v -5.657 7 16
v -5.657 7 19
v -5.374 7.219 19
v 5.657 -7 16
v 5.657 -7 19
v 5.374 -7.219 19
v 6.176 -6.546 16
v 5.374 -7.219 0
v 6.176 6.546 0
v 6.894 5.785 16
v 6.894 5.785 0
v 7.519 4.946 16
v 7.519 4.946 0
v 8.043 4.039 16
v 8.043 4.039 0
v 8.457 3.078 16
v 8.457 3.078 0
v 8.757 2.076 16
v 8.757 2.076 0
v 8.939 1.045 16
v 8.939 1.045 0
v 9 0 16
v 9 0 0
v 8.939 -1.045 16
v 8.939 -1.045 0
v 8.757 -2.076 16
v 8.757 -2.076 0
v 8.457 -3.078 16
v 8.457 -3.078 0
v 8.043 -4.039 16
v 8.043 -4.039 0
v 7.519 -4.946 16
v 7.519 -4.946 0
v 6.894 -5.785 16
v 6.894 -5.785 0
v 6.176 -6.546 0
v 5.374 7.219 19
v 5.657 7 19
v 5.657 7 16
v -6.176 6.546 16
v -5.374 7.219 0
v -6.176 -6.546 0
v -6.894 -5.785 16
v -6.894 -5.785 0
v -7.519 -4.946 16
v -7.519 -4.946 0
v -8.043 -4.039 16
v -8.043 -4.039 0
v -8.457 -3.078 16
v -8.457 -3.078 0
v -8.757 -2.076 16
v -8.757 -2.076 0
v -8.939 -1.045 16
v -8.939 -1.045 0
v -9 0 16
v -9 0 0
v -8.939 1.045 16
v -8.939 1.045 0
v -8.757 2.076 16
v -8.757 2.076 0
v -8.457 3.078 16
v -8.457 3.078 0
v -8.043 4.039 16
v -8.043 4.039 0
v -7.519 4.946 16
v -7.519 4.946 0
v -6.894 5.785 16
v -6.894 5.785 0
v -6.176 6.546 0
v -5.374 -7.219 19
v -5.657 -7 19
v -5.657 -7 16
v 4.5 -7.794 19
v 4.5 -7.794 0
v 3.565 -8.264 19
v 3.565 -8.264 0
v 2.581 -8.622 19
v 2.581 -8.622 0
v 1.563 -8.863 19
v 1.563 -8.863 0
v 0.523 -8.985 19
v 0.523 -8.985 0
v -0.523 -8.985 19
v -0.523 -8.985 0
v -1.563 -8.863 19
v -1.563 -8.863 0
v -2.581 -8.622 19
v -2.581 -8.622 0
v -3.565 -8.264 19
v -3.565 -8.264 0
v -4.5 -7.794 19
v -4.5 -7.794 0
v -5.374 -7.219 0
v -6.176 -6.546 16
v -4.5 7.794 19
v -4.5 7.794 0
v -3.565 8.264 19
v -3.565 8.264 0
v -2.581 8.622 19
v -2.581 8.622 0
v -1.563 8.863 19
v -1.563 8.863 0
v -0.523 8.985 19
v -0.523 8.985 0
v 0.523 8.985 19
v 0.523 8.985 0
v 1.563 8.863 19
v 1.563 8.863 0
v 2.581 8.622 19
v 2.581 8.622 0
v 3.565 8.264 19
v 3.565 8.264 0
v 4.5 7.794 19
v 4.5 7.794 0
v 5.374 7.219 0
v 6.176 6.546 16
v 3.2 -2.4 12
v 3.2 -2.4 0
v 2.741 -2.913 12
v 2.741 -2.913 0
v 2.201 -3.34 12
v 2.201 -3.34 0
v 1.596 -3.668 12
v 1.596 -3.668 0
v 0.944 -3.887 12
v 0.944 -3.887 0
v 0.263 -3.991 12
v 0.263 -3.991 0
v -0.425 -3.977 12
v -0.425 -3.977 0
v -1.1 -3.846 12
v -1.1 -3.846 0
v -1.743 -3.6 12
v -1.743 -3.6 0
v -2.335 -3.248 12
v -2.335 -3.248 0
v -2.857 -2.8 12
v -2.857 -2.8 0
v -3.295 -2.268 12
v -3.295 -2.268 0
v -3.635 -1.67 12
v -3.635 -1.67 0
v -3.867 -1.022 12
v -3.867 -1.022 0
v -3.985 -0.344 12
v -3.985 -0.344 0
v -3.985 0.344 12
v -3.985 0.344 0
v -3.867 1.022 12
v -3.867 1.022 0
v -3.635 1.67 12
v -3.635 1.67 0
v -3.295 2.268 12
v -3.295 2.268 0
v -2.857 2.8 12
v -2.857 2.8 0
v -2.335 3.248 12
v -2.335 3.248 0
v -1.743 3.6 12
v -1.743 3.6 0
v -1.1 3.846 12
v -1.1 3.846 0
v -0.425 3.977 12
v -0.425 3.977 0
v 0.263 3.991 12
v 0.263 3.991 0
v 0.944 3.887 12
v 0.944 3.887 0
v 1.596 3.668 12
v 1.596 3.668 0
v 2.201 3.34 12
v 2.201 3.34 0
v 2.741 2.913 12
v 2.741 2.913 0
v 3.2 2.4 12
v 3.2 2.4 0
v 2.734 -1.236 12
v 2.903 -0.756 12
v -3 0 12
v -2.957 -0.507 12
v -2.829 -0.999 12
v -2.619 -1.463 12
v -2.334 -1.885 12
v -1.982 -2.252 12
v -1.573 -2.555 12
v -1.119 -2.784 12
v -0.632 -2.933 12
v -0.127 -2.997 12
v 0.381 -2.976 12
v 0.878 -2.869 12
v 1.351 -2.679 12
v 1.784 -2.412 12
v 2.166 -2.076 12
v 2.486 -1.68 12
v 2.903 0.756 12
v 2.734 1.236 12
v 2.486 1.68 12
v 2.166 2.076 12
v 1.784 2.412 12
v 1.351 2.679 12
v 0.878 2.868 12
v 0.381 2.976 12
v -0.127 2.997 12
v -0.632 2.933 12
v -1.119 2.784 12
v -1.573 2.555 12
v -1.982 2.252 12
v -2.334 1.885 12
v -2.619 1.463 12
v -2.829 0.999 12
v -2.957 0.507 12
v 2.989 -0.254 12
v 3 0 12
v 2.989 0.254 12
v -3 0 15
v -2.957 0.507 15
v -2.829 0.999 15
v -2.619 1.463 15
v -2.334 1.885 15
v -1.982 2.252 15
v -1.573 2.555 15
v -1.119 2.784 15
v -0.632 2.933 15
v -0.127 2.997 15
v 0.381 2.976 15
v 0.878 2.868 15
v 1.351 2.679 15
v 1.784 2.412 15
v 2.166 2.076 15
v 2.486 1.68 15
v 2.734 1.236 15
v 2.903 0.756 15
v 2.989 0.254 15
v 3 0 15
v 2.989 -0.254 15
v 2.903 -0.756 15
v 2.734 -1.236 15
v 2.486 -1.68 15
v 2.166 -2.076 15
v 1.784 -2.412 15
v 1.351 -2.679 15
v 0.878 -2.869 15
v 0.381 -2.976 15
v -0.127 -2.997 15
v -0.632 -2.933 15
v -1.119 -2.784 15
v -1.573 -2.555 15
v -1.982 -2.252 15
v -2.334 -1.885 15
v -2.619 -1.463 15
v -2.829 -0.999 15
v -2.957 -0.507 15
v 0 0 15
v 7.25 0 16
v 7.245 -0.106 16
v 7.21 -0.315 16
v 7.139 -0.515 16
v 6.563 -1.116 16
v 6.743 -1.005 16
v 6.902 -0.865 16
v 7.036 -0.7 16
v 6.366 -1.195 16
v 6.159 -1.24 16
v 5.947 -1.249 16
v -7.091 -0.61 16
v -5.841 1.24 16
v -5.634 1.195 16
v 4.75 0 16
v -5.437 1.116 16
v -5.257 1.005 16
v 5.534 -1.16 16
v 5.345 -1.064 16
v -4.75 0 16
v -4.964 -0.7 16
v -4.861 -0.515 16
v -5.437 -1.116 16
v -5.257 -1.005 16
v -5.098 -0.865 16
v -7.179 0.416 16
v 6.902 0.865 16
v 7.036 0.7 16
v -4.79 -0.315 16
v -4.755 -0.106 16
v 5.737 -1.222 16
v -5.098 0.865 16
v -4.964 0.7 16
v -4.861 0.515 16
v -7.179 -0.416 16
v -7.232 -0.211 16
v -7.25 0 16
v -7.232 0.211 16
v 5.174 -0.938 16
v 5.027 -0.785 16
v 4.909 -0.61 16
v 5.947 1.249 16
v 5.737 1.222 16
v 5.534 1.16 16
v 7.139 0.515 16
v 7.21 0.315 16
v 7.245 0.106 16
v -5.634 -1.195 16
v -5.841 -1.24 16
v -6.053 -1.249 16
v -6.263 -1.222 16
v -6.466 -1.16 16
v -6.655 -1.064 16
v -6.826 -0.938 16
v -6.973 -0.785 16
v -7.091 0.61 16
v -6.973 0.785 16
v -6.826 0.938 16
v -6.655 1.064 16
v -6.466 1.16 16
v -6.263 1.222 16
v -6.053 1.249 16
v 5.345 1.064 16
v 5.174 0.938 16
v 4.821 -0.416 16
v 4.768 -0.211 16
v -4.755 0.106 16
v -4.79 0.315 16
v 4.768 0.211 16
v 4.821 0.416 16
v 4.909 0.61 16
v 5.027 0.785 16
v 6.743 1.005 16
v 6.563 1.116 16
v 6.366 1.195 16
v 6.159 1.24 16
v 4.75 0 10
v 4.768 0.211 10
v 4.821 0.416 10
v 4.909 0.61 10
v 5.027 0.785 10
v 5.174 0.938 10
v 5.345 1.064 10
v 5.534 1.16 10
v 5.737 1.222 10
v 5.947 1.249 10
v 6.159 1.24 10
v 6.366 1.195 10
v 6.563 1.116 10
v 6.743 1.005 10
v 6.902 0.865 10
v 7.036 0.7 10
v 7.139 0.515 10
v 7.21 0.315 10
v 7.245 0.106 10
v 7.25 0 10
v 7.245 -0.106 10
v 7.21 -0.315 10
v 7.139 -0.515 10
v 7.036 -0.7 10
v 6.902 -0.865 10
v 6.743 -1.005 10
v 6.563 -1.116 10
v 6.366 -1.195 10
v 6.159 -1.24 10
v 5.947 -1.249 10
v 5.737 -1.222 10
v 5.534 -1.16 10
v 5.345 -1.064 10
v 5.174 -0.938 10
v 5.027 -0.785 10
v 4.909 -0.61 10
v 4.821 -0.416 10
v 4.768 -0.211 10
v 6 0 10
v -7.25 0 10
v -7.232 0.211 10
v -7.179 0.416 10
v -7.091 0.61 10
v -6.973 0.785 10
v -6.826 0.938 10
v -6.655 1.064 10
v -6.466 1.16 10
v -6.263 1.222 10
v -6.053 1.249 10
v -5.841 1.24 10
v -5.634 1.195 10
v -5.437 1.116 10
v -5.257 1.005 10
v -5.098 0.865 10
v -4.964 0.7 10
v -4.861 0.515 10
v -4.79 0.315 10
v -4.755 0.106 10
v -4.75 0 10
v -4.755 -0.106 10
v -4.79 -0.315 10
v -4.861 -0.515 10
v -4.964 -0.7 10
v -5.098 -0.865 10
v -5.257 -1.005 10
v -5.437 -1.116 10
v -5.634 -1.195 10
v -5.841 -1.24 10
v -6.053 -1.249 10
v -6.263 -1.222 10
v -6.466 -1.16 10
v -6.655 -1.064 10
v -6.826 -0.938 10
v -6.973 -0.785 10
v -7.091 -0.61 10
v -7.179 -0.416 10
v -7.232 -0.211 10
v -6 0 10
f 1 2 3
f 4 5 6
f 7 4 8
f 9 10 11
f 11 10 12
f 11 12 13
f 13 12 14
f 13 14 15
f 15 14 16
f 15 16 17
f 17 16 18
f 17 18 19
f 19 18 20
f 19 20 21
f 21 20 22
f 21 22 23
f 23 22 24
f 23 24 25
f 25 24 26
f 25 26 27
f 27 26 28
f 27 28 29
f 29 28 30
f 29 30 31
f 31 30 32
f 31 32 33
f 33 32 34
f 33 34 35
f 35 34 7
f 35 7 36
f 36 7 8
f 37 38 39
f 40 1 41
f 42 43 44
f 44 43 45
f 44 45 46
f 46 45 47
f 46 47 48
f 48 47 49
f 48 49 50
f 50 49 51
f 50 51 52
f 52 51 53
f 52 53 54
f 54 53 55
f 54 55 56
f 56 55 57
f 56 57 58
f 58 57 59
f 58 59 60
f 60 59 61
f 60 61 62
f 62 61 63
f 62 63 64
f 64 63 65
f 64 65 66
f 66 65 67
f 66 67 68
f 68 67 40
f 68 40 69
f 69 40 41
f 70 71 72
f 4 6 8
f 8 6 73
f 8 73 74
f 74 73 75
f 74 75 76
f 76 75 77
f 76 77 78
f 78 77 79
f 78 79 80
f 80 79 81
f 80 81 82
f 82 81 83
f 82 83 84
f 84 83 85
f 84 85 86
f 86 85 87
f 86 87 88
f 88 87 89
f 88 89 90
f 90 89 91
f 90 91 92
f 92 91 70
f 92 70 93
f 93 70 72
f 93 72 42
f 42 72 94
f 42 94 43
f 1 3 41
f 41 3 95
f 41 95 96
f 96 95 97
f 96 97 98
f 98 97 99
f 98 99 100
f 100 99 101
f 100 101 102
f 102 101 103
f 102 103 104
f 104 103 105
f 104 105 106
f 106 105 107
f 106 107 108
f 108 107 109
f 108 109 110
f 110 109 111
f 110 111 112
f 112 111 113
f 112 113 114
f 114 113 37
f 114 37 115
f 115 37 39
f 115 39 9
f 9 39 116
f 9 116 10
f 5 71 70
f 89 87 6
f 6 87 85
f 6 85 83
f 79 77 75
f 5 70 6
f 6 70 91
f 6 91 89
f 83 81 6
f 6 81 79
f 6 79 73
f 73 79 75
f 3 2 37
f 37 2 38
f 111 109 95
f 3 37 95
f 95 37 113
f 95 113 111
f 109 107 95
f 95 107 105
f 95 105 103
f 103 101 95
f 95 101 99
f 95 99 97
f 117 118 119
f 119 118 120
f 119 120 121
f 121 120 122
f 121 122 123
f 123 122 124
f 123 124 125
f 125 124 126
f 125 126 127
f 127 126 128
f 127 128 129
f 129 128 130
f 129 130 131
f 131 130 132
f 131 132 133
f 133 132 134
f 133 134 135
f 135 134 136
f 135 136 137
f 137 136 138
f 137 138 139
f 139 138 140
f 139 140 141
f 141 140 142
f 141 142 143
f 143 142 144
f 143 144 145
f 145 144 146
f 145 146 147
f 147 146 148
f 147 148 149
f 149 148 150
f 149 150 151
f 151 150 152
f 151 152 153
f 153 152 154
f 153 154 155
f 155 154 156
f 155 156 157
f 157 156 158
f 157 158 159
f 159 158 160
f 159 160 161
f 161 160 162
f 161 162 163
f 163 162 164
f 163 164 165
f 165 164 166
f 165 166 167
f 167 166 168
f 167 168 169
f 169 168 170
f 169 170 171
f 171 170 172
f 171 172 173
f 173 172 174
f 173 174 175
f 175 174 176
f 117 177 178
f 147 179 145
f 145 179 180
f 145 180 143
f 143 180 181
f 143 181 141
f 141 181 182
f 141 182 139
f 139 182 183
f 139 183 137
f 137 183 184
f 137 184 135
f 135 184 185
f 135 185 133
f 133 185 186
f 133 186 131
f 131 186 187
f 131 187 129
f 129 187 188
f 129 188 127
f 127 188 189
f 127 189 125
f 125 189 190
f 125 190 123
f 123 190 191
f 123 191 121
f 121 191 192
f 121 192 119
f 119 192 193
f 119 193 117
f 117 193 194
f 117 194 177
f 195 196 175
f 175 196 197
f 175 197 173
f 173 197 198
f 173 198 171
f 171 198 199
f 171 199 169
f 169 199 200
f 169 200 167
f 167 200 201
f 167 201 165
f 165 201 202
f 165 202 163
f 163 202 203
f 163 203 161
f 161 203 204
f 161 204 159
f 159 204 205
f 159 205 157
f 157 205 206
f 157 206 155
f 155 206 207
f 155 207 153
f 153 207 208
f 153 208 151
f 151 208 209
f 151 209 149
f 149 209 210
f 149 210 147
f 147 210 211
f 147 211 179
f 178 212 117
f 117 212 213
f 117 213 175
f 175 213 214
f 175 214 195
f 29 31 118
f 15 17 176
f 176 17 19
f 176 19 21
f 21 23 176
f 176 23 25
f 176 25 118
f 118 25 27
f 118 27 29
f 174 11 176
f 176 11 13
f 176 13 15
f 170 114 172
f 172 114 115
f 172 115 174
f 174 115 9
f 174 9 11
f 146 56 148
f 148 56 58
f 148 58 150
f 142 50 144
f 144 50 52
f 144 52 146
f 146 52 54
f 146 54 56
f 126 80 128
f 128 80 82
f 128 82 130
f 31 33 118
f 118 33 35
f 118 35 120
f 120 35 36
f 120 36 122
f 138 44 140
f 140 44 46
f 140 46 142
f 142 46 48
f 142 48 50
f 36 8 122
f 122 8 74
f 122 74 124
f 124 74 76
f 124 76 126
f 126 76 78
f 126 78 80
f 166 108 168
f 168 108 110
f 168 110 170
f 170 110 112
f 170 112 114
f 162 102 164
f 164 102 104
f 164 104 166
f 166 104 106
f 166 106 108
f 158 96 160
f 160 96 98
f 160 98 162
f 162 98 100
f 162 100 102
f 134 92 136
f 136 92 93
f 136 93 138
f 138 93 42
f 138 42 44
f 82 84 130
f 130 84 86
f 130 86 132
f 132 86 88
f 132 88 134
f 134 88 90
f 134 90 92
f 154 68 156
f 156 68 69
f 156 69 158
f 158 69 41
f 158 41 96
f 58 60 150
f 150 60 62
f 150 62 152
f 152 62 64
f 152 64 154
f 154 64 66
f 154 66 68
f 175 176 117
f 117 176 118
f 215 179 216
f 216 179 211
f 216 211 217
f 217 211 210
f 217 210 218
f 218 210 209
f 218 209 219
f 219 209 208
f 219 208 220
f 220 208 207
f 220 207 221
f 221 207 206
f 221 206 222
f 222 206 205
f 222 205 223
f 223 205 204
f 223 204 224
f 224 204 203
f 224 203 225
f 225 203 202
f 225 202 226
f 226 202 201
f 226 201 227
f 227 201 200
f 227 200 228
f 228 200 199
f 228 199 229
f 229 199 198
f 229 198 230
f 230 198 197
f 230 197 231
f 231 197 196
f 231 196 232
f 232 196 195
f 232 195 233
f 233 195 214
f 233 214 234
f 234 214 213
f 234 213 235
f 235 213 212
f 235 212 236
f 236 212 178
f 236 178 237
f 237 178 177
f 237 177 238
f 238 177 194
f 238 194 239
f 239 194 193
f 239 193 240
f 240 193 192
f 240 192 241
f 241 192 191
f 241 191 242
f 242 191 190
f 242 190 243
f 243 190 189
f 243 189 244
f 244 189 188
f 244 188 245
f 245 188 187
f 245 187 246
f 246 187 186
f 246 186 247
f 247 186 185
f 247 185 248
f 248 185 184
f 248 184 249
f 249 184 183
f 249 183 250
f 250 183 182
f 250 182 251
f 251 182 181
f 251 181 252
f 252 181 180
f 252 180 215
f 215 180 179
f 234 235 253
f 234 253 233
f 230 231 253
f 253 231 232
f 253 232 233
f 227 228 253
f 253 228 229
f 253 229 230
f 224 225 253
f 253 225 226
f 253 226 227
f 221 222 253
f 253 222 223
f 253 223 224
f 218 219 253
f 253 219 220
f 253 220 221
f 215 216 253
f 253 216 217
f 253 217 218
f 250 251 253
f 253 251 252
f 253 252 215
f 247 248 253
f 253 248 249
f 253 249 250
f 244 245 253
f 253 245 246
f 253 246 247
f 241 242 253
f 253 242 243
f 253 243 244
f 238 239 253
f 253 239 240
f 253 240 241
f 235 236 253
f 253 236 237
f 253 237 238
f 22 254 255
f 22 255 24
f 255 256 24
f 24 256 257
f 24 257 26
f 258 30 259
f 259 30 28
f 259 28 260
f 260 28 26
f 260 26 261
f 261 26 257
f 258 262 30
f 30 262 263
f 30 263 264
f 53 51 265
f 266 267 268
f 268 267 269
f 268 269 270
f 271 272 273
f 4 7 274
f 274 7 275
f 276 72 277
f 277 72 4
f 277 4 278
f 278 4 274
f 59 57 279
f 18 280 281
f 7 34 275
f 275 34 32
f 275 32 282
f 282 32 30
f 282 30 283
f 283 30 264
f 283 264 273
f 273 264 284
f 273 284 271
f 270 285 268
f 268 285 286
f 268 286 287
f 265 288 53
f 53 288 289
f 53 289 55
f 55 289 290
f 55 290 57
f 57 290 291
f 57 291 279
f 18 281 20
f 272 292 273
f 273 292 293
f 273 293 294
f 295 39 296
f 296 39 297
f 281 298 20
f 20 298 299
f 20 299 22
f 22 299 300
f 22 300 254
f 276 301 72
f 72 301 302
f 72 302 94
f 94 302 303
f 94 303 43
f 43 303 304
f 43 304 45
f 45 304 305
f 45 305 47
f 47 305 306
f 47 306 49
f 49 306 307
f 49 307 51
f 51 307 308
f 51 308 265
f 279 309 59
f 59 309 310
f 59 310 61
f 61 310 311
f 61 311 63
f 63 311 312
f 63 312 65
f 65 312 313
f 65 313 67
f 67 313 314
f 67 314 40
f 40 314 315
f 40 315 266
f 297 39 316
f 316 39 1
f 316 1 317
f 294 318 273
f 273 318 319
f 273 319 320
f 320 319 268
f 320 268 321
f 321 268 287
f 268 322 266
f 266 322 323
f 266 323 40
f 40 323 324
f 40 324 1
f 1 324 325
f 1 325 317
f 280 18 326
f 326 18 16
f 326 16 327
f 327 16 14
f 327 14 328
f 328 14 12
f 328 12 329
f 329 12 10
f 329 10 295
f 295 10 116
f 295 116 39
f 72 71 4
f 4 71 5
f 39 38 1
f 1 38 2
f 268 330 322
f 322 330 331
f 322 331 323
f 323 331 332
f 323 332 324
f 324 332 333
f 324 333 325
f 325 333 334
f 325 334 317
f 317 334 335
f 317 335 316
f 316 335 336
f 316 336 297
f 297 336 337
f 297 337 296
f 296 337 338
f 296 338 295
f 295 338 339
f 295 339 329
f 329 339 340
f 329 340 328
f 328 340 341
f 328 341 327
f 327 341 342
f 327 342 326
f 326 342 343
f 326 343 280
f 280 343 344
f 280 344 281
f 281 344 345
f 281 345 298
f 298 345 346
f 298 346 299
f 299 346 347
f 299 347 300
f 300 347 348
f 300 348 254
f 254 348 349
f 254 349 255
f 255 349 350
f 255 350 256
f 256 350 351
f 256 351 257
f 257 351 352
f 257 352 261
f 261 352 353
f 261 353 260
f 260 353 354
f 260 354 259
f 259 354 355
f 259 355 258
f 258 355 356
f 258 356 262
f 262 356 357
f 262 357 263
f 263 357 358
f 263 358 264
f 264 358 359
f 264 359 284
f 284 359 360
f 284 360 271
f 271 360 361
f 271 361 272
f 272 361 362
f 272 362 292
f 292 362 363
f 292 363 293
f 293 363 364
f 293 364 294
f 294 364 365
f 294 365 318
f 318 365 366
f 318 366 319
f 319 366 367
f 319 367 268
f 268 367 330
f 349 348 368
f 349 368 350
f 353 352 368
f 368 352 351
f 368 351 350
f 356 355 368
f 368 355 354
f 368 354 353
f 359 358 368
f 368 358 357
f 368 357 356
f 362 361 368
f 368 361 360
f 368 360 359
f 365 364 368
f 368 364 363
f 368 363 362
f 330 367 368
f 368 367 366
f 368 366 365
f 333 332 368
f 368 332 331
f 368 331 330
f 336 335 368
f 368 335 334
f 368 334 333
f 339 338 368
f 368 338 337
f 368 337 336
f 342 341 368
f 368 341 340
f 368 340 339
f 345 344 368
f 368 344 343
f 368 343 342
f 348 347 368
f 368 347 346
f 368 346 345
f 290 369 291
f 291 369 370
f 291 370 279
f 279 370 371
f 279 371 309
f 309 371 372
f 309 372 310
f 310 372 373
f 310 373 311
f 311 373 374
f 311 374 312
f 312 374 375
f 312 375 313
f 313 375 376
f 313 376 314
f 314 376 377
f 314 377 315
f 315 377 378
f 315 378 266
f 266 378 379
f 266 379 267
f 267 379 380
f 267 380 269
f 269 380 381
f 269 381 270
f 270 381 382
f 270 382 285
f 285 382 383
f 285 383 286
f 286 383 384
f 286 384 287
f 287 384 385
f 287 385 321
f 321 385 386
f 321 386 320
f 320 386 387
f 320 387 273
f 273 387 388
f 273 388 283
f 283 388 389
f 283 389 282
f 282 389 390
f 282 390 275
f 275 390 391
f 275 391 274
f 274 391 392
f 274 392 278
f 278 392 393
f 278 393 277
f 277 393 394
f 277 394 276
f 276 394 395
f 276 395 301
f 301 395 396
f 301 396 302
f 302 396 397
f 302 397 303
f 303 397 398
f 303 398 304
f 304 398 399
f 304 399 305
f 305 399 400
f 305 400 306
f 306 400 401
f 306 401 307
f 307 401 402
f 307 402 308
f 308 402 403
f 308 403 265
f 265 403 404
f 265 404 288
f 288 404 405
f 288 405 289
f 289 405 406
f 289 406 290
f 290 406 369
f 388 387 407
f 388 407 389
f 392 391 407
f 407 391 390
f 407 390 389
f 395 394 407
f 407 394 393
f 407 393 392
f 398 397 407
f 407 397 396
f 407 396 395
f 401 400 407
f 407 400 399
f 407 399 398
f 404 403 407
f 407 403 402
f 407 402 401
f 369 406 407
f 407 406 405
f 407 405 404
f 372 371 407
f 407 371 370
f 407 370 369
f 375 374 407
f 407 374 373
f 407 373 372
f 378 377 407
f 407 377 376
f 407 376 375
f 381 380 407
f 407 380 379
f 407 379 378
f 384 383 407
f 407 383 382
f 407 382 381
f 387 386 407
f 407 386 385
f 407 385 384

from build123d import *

# Parameters (mm, degrees)
SKETCH1_R           = 9
BODY_DEPTH          = 19
SKETCH2_R           = 4
BORE_DEPTH          = 12
SKETCH3_W           = 1.5
SKETCH3_H           = 9
BORE_FLAT_DEPTH     = 12
SKETCH4_R           = 3
MAGNET_POCKET_DEPTH = 3
SKETCH5_W           = 22
SKETCH5_H           = 14
ARM_SLOT_DEPTH      = 3
SKETCH6_R           = 1.25
ARM_SCREWS_DEPTH    = 6


with BuildPart() as part:
    # Sketch1 → Body (new body)
    with BuildSketch(Plane.XY):
        Circle(SKETCH1_R)
    extrude(amount=BODY_DEPTH)

    # Sketch2 → Bore (cut)
    with BuildSketch(Plane.XY):
        Circle(SKETCH2_R)
    extrude(amount=BORE_DEPTH, mode=Mode.SUBTRACT)

    # Sketch3 → Bore_flat (add)
    with BuildSketch(Plane.XY):
        with Locations((3.95, 0)):
            Rectangle(SKETCH3_W, SKETCH3_H)
    extrude(amount=BORE_FLAT_DEPTH)

    # Sketch4 → Magnet_pocket (cut)
    with BuildSketch(Plane.XY.offset(12)):
        Circle(SKETCH4_R)
    extrude(amount=MAGNET_POCKET_DEPTH, mode=Mode.SUBTRACT)

    # Sketch5 → Arm_slot (cut)
    with BuildSketch(Plane.XY.offset(16)):
        Rectangle(SKETCH5_W, SKETCH5_H)
    extrude(amount=ARM_SLOT_DEPTH, mode=Mode.SUBTRACT)

    # Sketch6 → Arm_screws (cut)
    with BuildSketch(Plane.XY.offset(10)):
        with Locations((-6, 0)):
            Circle(SKETCH6_R)
        with Locations((6, 0)):
            Circle(SKETCH6_R)
    extrude(amount=ARM_SCREWS_DEPTH, mode=Mode.SUBTRACT)


solid = part.part
